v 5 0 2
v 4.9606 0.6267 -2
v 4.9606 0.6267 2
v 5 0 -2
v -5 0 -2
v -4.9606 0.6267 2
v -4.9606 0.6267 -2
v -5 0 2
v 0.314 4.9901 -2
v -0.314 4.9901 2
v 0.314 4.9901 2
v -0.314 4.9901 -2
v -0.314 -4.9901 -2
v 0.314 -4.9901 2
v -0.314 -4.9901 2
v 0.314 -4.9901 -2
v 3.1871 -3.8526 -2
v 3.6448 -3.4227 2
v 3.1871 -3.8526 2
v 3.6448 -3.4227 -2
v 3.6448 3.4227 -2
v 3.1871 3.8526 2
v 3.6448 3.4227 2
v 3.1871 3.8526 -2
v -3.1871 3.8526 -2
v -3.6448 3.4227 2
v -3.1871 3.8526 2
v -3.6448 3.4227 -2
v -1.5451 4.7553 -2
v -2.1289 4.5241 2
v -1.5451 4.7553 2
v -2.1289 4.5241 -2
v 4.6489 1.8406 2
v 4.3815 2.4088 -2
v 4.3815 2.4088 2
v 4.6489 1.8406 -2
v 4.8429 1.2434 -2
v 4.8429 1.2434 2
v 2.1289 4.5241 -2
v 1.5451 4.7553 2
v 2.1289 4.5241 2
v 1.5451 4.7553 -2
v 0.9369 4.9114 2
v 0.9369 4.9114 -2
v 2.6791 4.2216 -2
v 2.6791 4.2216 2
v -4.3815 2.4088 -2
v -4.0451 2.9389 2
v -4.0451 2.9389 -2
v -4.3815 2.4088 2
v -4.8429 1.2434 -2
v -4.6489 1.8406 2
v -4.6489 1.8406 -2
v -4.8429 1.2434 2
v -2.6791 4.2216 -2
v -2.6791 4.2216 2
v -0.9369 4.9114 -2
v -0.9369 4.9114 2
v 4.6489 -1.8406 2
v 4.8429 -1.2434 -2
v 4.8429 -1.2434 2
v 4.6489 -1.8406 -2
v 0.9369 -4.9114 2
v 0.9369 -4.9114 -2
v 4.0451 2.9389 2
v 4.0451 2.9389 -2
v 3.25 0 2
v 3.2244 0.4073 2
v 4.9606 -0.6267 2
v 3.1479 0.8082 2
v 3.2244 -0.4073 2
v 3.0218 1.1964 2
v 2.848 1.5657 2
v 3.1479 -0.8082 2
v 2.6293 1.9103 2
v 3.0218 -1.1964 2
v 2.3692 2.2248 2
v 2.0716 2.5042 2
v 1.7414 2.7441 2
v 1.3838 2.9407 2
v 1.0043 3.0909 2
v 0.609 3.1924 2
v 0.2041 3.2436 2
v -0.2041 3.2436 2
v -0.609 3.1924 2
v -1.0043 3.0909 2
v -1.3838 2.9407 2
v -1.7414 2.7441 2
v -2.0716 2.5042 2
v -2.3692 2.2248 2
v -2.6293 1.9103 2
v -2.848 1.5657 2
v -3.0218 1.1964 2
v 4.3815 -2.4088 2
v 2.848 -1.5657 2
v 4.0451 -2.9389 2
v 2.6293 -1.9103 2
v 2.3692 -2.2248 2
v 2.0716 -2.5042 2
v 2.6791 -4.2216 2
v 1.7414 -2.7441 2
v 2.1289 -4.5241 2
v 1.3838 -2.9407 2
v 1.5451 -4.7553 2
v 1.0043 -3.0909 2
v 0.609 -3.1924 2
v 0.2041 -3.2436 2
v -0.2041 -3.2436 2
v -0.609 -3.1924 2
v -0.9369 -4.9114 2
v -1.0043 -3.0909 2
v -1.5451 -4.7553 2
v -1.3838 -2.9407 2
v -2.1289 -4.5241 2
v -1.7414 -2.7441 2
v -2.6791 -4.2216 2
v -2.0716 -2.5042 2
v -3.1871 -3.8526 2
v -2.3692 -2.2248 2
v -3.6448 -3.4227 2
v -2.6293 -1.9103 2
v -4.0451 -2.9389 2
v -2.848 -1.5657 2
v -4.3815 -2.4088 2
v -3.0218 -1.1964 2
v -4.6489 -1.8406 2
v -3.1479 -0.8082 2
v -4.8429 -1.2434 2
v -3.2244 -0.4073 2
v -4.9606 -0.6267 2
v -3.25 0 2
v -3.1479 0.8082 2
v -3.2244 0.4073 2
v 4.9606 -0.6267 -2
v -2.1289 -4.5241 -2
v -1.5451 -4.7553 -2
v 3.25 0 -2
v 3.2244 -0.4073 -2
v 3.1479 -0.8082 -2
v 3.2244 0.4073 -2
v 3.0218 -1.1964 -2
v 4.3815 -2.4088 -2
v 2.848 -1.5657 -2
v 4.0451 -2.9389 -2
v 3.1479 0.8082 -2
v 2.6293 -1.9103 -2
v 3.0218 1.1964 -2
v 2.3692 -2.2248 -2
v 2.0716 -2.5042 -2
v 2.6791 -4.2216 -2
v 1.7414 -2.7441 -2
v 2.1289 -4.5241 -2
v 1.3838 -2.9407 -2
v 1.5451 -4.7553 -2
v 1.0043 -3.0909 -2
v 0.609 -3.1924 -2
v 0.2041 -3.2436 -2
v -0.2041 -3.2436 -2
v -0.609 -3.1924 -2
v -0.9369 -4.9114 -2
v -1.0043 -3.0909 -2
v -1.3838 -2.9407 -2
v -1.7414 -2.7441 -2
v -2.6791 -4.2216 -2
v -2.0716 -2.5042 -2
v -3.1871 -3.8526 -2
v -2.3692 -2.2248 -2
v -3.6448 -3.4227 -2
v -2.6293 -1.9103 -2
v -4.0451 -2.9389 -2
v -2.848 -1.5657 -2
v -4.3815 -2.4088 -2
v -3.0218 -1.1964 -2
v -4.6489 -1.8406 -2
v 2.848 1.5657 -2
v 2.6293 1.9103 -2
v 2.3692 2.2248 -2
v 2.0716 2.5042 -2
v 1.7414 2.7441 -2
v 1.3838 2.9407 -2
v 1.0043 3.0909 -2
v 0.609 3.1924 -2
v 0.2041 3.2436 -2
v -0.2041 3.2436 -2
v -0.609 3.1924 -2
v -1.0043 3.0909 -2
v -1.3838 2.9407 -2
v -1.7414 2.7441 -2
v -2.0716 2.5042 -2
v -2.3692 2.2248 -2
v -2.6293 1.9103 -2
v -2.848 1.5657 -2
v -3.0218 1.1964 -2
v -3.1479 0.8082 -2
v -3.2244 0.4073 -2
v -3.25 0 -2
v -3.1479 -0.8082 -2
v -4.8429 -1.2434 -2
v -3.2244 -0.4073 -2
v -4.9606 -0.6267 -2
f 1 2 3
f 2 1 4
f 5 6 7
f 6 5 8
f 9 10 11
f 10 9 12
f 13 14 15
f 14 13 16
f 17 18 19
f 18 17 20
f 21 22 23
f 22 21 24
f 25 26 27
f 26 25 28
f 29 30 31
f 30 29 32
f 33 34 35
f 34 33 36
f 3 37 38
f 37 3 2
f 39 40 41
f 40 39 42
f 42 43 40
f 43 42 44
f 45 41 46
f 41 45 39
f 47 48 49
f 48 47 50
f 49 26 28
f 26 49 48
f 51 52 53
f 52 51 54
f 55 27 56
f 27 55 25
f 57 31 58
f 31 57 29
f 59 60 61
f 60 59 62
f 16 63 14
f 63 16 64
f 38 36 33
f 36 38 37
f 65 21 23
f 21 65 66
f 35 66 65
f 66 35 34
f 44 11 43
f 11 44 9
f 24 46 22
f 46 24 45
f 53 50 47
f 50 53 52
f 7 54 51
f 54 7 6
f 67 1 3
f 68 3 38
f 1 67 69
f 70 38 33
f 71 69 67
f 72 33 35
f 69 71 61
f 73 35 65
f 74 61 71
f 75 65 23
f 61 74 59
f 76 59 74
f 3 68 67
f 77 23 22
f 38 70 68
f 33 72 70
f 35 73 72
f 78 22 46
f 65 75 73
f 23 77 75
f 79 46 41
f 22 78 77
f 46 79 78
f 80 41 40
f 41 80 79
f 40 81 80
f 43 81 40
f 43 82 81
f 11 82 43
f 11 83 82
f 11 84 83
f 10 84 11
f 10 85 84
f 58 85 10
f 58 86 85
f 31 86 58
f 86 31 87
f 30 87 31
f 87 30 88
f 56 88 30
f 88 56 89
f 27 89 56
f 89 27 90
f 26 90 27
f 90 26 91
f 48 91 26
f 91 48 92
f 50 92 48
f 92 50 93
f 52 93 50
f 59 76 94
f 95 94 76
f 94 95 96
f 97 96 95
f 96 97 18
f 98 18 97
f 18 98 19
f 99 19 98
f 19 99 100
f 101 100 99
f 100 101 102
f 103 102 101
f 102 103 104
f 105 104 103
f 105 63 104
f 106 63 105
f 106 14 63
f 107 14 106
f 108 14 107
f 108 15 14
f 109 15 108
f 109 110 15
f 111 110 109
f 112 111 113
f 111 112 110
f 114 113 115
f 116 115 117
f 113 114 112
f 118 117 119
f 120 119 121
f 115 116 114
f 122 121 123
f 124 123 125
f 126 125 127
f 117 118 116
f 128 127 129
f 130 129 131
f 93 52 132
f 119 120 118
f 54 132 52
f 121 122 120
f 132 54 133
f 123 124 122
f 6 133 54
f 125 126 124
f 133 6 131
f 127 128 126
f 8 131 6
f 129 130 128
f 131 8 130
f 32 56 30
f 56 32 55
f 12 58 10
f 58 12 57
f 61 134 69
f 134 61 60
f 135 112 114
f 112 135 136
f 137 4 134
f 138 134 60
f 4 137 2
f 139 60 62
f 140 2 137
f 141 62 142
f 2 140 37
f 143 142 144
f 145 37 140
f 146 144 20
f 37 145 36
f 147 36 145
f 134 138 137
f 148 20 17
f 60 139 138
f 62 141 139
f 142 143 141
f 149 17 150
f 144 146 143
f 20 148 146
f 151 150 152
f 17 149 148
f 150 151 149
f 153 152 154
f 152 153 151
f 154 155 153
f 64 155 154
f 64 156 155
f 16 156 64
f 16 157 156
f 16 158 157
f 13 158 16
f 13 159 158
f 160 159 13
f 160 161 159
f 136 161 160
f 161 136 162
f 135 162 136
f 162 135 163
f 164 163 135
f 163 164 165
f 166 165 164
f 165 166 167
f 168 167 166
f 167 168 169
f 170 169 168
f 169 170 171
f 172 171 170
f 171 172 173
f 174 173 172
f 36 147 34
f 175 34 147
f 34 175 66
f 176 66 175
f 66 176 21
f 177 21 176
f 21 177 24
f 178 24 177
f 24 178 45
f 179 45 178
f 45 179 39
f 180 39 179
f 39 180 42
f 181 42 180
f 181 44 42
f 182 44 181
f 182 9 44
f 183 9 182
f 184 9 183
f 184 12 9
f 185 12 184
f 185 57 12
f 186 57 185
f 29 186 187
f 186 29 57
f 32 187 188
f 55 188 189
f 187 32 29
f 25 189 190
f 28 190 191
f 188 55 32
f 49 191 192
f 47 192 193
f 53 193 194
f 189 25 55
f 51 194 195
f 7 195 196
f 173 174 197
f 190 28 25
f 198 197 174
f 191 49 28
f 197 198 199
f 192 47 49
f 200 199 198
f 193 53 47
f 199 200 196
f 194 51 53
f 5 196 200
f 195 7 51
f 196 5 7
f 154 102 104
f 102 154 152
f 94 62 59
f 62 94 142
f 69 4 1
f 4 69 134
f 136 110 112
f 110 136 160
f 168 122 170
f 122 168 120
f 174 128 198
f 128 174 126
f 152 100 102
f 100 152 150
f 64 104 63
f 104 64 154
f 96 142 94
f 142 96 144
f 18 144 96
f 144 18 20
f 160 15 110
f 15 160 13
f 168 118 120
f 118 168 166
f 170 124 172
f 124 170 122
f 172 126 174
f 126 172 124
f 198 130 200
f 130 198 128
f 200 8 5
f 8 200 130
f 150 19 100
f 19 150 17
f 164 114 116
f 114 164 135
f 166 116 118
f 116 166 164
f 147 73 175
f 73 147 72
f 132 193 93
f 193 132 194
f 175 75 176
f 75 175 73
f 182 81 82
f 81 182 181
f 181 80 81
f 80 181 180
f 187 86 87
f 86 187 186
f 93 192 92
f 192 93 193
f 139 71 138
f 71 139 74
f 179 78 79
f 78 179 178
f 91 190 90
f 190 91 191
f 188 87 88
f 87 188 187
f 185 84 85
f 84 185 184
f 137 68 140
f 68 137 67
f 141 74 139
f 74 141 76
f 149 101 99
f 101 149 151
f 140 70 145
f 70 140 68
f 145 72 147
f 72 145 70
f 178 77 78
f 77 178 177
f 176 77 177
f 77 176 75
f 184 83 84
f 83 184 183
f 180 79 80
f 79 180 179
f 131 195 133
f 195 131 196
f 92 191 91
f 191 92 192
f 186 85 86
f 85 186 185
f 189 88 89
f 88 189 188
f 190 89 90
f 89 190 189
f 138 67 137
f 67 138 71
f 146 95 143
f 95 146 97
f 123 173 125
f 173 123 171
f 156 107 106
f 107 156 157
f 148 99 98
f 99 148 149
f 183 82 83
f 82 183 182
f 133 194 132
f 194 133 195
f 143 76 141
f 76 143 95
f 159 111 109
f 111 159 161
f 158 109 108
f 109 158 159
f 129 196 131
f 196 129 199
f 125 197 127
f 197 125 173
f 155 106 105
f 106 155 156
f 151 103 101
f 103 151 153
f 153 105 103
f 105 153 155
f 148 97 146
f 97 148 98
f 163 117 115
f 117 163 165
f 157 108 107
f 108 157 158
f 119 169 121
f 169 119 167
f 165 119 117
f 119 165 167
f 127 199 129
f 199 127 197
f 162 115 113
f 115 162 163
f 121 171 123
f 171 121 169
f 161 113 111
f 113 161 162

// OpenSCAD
$fn = 50;


difference() {
	union() {
		translate(v = [0, 0, -2.0000000000]) {
			cylinder(h = 4, r = 5.0000000000);
		}
	}
	union() {
		translate(v = [0, 0, -100.0000000000]) {
			cylinder(h = 200, r = 3.2500000000);
		}
	}
}
